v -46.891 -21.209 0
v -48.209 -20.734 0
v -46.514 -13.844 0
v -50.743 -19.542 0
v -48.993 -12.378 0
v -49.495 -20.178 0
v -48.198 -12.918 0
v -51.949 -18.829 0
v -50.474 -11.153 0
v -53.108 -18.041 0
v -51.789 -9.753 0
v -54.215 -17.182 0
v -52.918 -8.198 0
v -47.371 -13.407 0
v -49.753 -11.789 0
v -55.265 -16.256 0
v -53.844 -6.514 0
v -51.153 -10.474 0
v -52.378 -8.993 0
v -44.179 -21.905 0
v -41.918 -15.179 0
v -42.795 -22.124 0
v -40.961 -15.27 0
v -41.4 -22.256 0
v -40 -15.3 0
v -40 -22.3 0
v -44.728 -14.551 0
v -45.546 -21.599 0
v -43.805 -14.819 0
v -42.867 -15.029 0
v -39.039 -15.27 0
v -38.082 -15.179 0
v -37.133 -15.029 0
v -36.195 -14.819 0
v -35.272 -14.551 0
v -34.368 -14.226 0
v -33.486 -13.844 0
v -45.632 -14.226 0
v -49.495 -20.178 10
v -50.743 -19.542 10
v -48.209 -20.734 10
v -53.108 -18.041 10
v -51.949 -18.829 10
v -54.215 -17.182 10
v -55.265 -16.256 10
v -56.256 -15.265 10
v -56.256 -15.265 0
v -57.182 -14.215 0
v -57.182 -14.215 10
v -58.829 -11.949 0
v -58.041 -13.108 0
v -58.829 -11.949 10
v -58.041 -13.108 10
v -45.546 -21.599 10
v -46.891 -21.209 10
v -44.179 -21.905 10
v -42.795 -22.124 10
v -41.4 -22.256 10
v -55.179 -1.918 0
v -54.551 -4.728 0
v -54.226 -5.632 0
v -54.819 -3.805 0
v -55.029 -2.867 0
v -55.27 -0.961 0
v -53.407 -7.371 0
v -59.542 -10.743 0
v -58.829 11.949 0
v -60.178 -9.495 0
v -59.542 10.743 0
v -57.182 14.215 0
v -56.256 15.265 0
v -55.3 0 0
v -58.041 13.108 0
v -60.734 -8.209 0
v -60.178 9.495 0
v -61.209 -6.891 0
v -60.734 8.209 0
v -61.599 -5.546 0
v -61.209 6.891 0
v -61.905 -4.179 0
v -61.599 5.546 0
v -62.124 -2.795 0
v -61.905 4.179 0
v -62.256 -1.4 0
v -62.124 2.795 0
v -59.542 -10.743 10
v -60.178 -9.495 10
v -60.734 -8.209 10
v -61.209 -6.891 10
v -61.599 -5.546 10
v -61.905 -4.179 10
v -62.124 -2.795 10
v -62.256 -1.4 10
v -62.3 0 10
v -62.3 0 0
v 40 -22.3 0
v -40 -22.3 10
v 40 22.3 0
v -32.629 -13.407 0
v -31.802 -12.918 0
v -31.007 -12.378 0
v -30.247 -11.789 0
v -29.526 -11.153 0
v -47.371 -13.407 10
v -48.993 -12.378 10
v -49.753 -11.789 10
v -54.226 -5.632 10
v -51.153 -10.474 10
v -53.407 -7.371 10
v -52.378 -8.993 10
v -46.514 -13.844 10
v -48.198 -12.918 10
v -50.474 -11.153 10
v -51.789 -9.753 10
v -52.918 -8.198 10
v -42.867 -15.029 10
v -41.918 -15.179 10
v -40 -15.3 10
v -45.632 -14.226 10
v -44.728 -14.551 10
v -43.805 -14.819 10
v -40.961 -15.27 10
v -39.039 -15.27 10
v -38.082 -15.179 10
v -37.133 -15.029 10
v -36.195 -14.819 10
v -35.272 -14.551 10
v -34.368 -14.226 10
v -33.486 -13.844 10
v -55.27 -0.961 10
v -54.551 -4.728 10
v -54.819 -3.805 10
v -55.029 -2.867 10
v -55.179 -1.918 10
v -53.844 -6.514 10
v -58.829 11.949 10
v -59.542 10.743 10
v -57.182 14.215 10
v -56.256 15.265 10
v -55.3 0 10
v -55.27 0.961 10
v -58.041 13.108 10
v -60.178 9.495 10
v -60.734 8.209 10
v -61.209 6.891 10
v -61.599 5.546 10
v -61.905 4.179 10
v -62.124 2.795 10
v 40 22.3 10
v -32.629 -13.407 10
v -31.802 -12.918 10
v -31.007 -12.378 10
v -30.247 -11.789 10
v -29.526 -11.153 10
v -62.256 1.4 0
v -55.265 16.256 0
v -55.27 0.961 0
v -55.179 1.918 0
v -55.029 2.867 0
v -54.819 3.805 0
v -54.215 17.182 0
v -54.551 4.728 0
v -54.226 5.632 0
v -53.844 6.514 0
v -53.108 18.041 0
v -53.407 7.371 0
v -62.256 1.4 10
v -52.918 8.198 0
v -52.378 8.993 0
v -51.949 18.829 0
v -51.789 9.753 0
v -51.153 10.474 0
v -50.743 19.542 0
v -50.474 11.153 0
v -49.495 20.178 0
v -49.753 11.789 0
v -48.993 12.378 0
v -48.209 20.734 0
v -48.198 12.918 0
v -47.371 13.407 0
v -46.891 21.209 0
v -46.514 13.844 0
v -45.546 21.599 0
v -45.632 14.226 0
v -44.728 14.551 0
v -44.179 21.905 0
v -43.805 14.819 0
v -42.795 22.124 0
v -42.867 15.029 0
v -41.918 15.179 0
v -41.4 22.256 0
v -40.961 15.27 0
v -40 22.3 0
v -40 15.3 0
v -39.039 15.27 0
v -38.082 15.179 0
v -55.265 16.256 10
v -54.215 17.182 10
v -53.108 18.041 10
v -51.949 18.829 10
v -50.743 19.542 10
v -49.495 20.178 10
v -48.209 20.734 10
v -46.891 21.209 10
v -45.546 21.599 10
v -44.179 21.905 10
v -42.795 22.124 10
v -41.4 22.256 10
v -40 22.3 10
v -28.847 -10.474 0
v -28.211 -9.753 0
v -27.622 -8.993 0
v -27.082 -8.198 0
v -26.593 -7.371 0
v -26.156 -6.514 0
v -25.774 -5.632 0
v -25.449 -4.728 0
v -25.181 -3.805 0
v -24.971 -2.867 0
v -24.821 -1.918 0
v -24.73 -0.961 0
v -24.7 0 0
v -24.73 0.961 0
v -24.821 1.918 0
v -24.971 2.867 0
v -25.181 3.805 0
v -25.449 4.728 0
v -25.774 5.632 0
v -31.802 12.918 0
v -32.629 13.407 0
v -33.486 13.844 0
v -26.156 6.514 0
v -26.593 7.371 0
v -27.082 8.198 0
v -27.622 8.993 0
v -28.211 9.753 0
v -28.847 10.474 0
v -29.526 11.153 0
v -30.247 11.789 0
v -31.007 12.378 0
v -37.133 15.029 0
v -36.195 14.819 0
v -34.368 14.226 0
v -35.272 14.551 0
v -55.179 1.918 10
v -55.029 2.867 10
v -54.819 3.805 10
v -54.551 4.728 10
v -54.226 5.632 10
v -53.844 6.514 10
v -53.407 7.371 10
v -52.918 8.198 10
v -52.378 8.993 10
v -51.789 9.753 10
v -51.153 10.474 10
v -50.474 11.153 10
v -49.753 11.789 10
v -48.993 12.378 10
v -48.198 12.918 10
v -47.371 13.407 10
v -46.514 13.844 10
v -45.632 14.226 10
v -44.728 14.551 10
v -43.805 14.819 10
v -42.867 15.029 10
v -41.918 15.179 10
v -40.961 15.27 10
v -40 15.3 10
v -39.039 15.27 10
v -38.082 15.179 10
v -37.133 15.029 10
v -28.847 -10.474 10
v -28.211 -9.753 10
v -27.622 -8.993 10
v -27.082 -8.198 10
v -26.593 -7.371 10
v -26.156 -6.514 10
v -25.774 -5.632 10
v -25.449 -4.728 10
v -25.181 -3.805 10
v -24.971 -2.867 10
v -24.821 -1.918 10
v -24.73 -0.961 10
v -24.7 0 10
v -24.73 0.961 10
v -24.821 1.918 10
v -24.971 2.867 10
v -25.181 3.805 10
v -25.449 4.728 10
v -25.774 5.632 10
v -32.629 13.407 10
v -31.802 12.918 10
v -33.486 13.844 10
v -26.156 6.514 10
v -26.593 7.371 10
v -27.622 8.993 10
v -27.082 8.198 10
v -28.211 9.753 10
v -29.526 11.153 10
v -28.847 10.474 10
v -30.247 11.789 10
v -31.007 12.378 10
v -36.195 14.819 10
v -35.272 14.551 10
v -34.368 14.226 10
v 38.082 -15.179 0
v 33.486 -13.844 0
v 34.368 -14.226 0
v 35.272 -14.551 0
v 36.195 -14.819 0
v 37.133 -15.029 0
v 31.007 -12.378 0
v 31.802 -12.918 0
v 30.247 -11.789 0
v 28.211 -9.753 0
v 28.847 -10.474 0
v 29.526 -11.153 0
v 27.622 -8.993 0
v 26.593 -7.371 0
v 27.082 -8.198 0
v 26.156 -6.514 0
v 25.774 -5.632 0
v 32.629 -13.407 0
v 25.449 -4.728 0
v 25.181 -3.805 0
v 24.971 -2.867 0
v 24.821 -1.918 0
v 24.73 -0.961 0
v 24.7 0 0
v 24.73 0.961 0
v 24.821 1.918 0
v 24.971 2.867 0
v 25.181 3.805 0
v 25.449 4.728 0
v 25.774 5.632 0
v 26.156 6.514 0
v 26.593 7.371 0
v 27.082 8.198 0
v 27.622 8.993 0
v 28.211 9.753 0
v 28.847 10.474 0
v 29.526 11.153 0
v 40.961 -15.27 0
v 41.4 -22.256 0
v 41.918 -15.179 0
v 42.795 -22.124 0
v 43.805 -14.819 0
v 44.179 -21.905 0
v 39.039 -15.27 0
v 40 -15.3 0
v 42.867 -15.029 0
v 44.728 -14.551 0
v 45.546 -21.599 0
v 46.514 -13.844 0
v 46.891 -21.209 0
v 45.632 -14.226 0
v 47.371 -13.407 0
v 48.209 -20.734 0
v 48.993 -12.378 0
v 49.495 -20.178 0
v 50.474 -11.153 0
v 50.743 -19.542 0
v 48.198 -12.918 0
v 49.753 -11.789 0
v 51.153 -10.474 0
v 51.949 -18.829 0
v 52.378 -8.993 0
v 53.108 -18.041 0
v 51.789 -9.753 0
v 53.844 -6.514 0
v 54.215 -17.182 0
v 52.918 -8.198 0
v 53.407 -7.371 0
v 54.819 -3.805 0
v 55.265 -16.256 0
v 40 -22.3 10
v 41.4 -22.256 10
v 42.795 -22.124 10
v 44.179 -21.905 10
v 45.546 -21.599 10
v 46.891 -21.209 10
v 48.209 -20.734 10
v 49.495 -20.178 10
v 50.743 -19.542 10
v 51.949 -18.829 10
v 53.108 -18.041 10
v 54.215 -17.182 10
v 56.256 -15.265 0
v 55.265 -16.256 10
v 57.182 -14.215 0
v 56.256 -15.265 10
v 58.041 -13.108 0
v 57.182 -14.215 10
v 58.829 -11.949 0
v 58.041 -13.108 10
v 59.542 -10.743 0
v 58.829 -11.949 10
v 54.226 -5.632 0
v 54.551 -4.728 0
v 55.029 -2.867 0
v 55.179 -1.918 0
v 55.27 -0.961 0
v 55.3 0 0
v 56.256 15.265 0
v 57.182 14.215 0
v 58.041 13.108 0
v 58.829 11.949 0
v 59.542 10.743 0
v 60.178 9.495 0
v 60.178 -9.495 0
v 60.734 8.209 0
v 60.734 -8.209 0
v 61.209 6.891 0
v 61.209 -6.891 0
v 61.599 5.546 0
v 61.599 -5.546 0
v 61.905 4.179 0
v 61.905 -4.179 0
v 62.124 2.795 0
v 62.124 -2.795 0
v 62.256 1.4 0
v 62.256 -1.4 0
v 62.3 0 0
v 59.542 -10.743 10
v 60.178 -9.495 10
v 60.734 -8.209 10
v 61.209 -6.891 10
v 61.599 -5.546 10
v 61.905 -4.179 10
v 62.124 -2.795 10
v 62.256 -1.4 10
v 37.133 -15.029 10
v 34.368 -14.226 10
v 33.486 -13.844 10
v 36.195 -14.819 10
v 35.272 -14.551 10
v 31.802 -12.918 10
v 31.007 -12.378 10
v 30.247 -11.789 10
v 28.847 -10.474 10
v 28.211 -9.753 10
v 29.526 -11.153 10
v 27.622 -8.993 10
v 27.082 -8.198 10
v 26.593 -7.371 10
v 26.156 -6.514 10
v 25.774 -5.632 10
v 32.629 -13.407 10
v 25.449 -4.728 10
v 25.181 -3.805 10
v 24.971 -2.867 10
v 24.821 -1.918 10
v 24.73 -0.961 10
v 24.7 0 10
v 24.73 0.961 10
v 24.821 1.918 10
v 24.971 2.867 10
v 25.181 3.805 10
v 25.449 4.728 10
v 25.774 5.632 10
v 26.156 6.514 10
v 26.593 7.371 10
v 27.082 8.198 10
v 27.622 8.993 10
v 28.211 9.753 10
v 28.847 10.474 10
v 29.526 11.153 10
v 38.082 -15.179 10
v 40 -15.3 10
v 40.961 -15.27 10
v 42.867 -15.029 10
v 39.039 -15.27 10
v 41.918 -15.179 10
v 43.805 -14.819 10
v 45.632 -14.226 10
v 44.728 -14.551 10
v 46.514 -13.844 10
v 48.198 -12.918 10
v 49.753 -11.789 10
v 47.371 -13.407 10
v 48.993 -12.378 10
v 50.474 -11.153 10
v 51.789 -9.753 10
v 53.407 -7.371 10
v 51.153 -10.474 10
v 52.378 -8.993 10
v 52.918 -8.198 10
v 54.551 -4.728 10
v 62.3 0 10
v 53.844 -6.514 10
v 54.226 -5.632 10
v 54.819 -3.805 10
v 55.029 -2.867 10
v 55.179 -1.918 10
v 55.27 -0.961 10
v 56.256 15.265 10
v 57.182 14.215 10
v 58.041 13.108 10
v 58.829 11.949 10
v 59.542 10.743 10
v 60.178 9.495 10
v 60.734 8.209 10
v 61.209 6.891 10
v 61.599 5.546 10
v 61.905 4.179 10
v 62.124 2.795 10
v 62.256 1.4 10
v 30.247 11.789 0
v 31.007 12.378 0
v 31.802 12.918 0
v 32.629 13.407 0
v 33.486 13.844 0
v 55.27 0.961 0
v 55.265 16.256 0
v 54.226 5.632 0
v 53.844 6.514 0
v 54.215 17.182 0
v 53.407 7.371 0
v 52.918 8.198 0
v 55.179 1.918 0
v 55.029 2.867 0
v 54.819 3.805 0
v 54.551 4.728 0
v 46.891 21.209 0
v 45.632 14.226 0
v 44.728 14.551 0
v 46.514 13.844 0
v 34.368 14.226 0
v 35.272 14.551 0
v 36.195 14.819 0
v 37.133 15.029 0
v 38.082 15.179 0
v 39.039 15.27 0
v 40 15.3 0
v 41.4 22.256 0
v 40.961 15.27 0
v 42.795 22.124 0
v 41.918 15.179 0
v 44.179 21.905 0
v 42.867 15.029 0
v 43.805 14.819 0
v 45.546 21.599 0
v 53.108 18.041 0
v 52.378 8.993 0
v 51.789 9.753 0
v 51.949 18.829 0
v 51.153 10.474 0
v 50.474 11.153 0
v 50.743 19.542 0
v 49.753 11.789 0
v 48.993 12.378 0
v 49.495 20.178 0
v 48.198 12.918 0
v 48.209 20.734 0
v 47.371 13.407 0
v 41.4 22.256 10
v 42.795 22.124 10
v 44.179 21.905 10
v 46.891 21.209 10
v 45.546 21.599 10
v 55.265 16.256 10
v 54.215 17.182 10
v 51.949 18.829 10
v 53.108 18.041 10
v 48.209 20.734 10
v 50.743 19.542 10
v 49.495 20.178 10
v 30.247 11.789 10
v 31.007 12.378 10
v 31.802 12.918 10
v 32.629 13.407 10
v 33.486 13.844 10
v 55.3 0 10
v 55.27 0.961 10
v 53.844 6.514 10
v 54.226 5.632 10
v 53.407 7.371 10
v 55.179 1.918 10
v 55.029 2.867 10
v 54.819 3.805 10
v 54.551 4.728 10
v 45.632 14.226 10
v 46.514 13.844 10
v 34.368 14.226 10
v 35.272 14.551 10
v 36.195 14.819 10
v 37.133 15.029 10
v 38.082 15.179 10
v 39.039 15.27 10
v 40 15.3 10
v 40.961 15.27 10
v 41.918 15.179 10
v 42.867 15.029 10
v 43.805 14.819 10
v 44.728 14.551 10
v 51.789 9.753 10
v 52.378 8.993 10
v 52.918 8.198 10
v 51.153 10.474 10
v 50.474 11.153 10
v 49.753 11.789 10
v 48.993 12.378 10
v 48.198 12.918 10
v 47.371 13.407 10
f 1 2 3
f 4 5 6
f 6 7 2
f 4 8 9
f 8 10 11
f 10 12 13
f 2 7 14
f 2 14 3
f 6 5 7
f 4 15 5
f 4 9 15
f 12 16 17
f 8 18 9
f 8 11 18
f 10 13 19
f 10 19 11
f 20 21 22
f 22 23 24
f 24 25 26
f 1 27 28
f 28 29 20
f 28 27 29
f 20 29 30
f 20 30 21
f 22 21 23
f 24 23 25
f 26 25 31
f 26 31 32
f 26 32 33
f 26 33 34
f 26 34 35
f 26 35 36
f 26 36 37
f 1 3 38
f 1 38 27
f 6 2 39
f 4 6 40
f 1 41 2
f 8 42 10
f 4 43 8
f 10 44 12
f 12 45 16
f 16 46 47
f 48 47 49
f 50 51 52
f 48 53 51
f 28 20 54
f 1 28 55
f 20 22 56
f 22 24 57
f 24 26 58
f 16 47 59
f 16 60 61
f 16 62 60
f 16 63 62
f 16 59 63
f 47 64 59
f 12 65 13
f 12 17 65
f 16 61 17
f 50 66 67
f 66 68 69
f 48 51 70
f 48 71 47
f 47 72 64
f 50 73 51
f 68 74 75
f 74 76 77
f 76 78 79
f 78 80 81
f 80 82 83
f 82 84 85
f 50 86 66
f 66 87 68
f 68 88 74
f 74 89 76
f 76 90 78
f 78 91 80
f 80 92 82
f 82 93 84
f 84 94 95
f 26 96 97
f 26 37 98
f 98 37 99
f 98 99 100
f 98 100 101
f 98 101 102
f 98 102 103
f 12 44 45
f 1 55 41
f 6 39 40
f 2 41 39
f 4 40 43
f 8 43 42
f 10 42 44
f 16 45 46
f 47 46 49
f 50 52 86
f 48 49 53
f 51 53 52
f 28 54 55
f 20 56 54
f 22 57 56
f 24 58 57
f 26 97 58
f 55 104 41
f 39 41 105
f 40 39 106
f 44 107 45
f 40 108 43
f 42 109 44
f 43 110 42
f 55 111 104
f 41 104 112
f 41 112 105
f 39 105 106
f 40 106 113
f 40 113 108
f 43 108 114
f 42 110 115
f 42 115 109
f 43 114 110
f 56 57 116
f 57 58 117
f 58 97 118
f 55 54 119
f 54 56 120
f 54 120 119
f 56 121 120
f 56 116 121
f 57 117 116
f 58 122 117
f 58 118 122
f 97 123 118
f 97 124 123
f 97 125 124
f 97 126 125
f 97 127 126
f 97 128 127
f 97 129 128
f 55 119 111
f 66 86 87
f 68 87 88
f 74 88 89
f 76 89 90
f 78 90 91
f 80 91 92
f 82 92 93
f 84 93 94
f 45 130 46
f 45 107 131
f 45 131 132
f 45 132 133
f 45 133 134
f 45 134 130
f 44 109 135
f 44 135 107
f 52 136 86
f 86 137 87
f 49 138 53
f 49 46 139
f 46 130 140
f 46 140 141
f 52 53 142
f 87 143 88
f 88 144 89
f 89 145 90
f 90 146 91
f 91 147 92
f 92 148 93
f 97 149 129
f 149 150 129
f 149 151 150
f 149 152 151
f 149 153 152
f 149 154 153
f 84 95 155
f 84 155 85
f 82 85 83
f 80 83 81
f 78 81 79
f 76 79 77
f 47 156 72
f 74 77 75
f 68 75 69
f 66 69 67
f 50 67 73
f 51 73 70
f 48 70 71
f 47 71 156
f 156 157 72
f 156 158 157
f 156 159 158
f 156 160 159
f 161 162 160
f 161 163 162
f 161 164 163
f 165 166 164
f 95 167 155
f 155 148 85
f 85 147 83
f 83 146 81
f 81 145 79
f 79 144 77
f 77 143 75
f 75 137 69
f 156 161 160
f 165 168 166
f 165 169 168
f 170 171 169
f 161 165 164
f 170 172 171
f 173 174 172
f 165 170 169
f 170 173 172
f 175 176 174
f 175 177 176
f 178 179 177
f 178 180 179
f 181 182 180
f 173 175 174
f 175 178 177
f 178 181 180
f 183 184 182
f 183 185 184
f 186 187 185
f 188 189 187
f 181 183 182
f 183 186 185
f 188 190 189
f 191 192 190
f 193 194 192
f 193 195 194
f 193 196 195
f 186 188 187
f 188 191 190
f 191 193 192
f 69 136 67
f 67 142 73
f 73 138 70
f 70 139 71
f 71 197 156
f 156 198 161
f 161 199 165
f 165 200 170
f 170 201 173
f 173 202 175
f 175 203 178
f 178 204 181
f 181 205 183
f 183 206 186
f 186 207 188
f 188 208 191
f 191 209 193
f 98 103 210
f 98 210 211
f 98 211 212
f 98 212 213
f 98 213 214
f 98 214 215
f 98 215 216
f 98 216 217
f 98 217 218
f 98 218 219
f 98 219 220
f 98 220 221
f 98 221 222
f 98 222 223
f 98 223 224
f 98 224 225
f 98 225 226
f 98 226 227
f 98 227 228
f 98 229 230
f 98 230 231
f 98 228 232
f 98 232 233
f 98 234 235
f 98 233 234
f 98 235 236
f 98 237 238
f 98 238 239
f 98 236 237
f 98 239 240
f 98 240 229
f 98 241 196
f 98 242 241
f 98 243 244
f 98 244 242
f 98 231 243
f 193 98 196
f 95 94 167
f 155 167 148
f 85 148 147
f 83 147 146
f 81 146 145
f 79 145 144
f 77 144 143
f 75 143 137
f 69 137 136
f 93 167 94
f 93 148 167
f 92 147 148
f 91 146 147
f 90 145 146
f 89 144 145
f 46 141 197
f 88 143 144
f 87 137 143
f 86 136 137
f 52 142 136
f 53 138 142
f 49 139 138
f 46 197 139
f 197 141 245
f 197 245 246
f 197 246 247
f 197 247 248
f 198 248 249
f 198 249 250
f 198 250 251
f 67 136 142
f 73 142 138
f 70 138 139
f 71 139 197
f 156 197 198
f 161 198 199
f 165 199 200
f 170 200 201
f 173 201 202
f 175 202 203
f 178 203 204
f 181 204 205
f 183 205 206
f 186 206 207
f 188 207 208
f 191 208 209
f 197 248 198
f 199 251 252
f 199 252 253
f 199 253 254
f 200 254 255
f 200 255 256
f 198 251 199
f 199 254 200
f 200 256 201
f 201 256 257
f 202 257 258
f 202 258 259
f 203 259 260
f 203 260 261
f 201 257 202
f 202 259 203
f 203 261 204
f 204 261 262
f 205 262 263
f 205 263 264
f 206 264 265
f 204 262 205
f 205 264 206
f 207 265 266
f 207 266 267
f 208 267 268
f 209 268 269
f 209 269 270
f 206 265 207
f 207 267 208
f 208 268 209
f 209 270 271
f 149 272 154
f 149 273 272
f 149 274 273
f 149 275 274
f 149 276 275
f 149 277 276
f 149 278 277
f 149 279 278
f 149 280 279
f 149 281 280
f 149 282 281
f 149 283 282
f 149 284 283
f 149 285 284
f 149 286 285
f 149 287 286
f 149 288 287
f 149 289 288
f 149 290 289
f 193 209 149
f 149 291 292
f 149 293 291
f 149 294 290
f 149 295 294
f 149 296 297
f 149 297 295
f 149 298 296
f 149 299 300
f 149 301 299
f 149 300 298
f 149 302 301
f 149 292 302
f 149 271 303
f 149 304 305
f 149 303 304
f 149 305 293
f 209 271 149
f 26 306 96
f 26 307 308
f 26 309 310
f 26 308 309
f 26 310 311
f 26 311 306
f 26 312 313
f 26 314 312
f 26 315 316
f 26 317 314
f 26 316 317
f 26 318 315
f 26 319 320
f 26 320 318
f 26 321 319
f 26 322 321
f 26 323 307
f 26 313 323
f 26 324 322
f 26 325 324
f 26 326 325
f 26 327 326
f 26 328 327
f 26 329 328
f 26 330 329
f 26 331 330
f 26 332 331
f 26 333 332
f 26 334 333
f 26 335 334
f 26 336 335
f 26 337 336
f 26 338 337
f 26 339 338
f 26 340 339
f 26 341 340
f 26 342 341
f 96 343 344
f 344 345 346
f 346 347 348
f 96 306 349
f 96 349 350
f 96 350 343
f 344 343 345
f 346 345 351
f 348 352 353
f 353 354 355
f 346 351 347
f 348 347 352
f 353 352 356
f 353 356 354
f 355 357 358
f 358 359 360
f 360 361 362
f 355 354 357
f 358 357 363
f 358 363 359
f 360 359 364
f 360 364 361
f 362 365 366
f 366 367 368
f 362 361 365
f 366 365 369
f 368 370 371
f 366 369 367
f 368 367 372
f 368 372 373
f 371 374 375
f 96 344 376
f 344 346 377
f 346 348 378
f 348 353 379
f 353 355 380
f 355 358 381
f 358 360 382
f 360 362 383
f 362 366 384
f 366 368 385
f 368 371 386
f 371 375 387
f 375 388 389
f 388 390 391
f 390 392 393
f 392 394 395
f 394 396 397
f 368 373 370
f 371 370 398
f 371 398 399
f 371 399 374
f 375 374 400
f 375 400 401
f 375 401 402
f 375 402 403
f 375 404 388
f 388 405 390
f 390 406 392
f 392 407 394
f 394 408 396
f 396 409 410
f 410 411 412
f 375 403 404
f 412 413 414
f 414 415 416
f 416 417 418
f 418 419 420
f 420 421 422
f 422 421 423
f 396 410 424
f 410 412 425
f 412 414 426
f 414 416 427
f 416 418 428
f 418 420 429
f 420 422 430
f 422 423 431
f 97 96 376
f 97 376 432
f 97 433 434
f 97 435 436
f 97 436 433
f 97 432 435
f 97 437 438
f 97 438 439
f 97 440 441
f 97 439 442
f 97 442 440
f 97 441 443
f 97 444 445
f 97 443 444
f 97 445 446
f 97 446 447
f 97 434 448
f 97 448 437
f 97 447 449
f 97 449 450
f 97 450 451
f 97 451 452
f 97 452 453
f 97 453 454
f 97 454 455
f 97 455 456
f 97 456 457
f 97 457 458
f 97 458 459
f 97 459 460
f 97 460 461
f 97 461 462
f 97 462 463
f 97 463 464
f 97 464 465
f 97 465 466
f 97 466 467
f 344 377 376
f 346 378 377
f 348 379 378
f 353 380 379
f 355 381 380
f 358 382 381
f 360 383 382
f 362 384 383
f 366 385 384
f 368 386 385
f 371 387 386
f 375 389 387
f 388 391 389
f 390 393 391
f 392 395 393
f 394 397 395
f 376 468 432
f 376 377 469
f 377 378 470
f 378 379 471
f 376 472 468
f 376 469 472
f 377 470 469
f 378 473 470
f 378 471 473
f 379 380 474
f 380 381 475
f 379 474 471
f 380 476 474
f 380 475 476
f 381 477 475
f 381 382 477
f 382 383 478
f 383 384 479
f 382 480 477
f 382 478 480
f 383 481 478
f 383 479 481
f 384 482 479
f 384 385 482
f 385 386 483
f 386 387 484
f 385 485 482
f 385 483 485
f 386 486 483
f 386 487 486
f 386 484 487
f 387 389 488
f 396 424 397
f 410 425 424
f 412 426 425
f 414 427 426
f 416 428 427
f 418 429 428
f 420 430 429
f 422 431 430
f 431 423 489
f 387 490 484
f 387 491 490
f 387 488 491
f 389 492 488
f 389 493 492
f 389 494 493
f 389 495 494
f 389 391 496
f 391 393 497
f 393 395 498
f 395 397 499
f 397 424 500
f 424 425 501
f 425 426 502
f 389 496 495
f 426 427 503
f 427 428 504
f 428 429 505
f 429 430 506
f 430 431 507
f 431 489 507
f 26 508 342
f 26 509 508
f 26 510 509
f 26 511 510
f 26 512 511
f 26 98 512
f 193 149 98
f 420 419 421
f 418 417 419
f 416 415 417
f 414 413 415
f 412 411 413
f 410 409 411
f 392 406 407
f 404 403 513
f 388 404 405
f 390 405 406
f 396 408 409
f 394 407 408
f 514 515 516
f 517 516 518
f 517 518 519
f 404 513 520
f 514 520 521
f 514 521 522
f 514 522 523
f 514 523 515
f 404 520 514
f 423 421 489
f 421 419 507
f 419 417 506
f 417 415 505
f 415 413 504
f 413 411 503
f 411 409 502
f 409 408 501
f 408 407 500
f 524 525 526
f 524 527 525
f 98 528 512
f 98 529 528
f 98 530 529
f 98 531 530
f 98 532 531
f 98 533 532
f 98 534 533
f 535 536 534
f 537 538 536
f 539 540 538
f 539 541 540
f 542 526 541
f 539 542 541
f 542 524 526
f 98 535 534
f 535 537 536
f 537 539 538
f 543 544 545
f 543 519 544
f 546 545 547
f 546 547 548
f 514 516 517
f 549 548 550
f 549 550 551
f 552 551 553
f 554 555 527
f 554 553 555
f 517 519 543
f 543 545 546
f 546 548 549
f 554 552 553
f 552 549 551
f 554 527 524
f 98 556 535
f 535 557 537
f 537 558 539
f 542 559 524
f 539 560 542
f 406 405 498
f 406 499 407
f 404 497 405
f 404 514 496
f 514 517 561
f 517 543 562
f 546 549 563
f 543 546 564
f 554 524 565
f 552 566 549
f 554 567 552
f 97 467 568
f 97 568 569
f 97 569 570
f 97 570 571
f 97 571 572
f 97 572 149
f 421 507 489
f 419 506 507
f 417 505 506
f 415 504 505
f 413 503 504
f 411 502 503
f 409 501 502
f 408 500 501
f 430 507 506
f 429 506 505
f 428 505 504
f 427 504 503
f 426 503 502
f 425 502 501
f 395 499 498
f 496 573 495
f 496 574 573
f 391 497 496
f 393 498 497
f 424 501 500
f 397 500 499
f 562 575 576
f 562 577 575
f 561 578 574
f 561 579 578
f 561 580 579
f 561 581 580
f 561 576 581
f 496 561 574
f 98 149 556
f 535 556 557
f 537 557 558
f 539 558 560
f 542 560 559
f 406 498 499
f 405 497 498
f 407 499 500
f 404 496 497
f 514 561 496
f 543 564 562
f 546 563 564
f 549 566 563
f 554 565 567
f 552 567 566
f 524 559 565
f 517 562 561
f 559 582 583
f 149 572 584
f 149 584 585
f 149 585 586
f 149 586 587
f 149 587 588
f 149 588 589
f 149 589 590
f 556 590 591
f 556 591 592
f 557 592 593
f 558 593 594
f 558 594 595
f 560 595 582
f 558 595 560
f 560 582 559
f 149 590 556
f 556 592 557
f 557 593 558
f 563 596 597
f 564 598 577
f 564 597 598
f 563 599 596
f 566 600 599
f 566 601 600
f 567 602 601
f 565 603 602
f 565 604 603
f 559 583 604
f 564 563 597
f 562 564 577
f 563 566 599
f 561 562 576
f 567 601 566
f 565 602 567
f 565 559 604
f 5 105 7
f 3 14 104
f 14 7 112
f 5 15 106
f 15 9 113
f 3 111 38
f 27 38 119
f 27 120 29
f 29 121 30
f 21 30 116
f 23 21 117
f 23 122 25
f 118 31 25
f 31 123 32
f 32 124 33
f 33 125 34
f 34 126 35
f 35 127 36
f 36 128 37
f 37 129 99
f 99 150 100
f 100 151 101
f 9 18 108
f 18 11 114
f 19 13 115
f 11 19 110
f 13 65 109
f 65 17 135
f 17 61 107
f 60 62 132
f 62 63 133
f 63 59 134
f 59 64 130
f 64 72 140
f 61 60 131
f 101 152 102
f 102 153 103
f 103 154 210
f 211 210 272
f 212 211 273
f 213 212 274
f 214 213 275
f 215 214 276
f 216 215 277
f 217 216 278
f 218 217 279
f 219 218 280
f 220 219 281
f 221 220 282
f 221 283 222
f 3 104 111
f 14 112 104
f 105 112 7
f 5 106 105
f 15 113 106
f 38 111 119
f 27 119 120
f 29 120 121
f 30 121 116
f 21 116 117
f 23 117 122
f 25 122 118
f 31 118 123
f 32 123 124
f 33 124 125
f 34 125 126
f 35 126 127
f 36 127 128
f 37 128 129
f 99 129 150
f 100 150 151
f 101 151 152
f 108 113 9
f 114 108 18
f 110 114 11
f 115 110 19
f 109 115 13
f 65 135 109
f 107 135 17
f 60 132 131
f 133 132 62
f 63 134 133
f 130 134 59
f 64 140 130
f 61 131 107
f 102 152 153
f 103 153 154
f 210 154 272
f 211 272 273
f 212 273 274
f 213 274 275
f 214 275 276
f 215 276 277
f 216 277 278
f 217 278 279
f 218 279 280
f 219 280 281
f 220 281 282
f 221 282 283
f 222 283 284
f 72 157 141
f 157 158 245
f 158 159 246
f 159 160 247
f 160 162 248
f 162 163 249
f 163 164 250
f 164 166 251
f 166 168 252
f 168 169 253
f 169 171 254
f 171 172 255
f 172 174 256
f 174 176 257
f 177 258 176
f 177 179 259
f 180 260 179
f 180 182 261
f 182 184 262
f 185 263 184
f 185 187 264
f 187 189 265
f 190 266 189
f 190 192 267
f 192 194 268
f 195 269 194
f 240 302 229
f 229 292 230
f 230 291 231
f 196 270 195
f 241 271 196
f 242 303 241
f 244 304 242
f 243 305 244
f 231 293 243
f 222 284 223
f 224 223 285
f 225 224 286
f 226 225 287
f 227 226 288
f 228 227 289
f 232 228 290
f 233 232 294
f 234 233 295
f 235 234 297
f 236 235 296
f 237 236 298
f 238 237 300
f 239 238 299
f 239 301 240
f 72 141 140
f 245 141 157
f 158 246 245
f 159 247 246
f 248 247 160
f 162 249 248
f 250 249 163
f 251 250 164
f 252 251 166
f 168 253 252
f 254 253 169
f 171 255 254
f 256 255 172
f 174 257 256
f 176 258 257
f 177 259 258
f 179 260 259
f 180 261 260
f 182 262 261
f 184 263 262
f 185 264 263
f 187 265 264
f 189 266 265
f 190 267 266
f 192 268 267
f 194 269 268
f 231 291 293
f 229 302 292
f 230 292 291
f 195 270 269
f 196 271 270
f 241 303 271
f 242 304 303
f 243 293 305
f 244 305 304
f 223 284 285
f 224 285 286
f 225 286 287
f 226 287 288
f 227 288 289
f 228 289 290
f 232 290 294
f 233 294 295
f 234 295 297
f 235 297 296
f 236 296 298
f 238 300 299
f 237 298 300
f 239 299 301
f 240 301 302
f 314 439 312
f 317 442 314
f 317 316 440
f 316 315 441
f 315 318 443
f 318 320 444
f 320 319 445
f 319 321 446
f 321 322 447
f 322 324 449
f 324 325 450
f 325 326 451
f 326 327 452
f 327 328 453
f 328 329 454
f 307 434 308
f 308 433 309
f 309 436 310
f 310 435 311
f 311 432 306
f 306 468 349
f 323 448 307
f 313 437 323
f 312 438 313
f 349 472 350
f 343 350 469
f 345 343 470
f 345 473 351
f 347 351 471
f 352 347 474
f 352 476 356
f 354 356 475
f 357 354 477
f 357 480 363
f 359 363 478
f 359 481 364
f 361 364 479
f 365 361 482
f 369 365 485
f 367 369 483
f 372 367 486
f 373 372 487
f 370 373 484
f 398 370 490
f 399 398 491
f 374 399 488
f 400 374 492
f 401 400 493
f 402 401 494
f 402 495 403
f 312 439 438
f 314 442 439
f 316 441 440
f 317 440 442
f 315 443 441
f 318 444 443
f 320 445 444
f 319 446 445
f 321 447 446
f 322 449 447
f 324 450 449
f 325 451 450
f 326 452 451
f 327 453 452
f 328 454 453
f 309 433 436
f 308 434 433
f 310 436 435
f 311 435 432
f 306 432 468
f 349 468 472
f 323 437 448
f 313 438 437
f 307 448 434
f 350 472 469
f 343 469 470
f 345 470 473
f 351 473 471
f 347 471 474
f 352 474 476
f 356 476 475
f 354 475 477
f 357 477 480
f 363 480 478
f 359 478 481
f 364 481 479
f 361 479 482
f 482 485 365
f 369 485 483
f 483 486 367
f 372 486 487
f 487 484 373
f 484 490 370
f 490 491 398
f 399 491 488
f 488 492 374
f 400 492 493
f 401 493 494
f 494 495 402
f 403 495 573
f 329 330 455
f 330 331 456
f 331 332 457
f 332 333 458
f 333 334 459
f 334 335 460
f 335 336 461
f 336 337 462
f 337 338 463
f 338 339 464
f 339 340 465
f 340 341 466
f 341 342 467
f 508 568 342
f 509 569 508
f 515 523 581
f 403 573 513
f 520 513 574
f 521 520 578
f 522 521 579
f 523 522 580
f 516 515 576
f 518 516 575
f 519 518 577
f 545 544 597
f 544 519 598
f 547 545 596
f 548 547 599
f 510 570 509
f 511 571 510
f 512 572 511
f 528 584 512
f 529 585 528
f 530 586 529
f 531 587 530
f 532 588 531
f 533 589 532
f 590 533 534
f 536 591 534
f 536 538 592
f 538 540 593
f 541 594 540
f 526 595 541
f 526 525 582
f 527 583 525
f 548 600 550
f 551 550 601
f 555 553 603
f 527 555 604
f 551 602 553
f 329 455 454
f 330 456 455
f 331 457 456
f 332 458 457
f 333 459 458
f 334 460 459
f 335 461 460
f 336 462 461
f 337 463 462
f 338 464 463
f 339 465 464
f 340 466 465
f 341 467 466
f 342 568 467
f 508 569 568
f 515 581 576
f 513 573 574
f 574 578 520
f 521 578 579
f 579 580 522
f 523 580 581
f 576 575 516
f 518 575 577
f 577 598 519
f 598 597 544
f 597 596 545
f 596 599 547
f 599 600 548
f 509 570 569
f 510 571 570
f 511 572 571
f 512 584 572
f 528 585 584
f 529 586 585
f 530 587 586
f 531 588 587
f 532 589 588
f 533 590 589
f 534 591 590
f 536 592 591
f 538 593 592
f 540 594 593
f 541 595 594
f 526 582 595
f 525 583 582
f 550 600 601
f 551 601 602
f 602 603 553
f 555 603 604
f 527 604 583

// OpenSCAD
// ============================================================
// Turn-N-Tube shelf coupler — rigid lozenge collar
// Connects two adjacent shelf units at one tube height.
// Replaces zip ties: a lozenge collar slips over both vertical
// tube posts and holds them at a fixed spacing, with an
// optional wall on the underside that fills the gap between
// the two units' facing shelf edges.
//
// The coupler DEFINES the spacing — it does not have to fit
// the units as they currently sit. Set the gap you want and
// the hole spacing follows from the tube and the tube-to-edge
// run on each unit. Nothing here depends on how far apart the
// units happen to be today.
//
// A deliberate gap is worth having: adjacent units rarely have
// their shelves at the same height, and the gap keeps that
// mismatch from reading as a misalignment.
//
// PRINT NOTES:
// - PETG, no supports needed (holes are round, the wall is
//   solid down to a flat bottom).
// - Print with the collar axis vertical (as modeled) so the
//   holes print round and the tube slides through cleanly.
// - Rests on the shelf below, so the wall only needs to be on
//   the bottom face. Two per shelf level (front and back post
//   pair), 8 total for a 5-tier unit — the top shelf has no
//   tube above it.
// ============================================================

// ===== MEASURE THESE ON YOUR ACTUAL SHELVES =====
// Both are outside-the-solid measurements, so plain calipers reach them

tube_od = 30; // Outer diameter of the vertical tube post (mm) — outside jaws on the tube

// Tube's outer surface out to the facing edge of its own shelf (mm).
// Measured on the side that faces the other unit. Eyeball it if the calipers
// won't reach — error here just shifts the gap you end up with by the same
// amount, it never stops the part going onto the tubes
tube_to_edge = 20;

// Override these only if the two units differ — a shelf that overhangs
// further on one side, or a post that isn't set the same distance in
left_tube_to_edge = tube_to_edge;
right_tube_to_edge = tube_to_edge;

// ===== DECIDE THIS =====
// Gap you want between the two units' facing shelf edges (mm).
// This is a choice, not a measurement — the coupler holds the units here.
// Some gap hides shelf-height mismatch between the units
shelf_gap = 10;

// ===== WALL =====
// Solid wall hanging below the collar, filling the gap. Not structurally
// required — the hole spacing alone sets the gap, and two couplers per
// level already resist twist. It hides the gap and keeps stray items
// from dropping through
wall = false;
wall_height = 15; // How far the wall drops below the collar (mm)
// Thickness is shelf_gap exactly — it is the gap, made solid — and depth
// front-to-back is the collar's own depth, so both are derived below

// ===== TUNE THESE =====
hole_clearance = 0.6; // Added to hole diameter for slip fit (mm) — increase if too tight
wall_clearance = 0.4; // Shaved off the wall thickness so it drops in without a fight (mm)
wall_meat = 7; // PETG thickness around each hole (mm)
collar_height = 10; // Height of the main collar at the shelf level (mm)

$fn = 100;

// ===== DERIVED =====
// Tube centre to tube centre: half a tube, the run out to each shelf
// edge, and the gap between those edges
center_distance = tube_od + left_tube_to_edge + shelf_gap + right_tube_to_edge;

hole_r = tube_od / 2 + hole_clearance / 2;
collar_r = hole_r + wall_meat;

// Midpoint of the gap. Zero when both units measure the same, and
// offset toward the shorter run when they don't
wall_x = (left_tube_to_edge - right_tube_to_edge) / 2;

// The wall hangs under the waist of the lozenge, where the collar is a full
// 2*collar_r deep, so it runs flush with the collar's sides
wall_depth = 2 * collar_r;

// Slop comes out of the wall, not out of the spacing — the hole positions
// still hold the units shelf_gap apart
wall_thickness = shelf_gap - wall_clearance;

echo(str("center-to-center hole spacing = ", center_distance, " mm"));
echo(str("overall length = ", center_distance + 2 * collar_r, " mm"));
echo(str("wall = ", wall_thickness, " x ", wall_depth, " mm at X offset ", wall_x, " mm"));

assert(!wall || wall_thickness > 0, "wall_clearance has eaten the whole wall — raise shelf_gap, lower wall_clearance, or set wall = false");
assert(abs(wall_x) + wall_thickness / 2 <= center_distance / 2 - hole_r, "wall overlaps a tube hole — check the tube-to-edge measurements");

// 2D lozenge (stadium) shape: hull of two circles
module lozenge_2d(r, cdist) {
  hull() {
    translate([-cdist / 2, 0])
      circle(r = r);
    translate([cdist / 2, 0])
      circle(r = r);
  }
}

module coupler() {
  difference() {
    union() {
      // Main collar at shelf height
      linear_extrude(height = collar_height)
        lozenge_2d(collar_r, center_distance);

      // Gap-filling wall, bottom face only, flush with the collar sides
      if (wall)
        translate([wall_x, 0, -wall_height])
          linear_extrude(height = wall_height)
            square([wall_thickness, wall_depth], center = true);
    }

    // Through-holes for the two tube posts
    translate([-center_distance / 2, 0, -wall_height - 1])
      cylinder(r = hole_r, h = collar_height + wall_height + 2);
    translate([center_distance / 2, 0, -wall_height - 1])
      cylinder(r = hole_r, h = collar_height + wall_height + 2);
  }
}

coupler();
